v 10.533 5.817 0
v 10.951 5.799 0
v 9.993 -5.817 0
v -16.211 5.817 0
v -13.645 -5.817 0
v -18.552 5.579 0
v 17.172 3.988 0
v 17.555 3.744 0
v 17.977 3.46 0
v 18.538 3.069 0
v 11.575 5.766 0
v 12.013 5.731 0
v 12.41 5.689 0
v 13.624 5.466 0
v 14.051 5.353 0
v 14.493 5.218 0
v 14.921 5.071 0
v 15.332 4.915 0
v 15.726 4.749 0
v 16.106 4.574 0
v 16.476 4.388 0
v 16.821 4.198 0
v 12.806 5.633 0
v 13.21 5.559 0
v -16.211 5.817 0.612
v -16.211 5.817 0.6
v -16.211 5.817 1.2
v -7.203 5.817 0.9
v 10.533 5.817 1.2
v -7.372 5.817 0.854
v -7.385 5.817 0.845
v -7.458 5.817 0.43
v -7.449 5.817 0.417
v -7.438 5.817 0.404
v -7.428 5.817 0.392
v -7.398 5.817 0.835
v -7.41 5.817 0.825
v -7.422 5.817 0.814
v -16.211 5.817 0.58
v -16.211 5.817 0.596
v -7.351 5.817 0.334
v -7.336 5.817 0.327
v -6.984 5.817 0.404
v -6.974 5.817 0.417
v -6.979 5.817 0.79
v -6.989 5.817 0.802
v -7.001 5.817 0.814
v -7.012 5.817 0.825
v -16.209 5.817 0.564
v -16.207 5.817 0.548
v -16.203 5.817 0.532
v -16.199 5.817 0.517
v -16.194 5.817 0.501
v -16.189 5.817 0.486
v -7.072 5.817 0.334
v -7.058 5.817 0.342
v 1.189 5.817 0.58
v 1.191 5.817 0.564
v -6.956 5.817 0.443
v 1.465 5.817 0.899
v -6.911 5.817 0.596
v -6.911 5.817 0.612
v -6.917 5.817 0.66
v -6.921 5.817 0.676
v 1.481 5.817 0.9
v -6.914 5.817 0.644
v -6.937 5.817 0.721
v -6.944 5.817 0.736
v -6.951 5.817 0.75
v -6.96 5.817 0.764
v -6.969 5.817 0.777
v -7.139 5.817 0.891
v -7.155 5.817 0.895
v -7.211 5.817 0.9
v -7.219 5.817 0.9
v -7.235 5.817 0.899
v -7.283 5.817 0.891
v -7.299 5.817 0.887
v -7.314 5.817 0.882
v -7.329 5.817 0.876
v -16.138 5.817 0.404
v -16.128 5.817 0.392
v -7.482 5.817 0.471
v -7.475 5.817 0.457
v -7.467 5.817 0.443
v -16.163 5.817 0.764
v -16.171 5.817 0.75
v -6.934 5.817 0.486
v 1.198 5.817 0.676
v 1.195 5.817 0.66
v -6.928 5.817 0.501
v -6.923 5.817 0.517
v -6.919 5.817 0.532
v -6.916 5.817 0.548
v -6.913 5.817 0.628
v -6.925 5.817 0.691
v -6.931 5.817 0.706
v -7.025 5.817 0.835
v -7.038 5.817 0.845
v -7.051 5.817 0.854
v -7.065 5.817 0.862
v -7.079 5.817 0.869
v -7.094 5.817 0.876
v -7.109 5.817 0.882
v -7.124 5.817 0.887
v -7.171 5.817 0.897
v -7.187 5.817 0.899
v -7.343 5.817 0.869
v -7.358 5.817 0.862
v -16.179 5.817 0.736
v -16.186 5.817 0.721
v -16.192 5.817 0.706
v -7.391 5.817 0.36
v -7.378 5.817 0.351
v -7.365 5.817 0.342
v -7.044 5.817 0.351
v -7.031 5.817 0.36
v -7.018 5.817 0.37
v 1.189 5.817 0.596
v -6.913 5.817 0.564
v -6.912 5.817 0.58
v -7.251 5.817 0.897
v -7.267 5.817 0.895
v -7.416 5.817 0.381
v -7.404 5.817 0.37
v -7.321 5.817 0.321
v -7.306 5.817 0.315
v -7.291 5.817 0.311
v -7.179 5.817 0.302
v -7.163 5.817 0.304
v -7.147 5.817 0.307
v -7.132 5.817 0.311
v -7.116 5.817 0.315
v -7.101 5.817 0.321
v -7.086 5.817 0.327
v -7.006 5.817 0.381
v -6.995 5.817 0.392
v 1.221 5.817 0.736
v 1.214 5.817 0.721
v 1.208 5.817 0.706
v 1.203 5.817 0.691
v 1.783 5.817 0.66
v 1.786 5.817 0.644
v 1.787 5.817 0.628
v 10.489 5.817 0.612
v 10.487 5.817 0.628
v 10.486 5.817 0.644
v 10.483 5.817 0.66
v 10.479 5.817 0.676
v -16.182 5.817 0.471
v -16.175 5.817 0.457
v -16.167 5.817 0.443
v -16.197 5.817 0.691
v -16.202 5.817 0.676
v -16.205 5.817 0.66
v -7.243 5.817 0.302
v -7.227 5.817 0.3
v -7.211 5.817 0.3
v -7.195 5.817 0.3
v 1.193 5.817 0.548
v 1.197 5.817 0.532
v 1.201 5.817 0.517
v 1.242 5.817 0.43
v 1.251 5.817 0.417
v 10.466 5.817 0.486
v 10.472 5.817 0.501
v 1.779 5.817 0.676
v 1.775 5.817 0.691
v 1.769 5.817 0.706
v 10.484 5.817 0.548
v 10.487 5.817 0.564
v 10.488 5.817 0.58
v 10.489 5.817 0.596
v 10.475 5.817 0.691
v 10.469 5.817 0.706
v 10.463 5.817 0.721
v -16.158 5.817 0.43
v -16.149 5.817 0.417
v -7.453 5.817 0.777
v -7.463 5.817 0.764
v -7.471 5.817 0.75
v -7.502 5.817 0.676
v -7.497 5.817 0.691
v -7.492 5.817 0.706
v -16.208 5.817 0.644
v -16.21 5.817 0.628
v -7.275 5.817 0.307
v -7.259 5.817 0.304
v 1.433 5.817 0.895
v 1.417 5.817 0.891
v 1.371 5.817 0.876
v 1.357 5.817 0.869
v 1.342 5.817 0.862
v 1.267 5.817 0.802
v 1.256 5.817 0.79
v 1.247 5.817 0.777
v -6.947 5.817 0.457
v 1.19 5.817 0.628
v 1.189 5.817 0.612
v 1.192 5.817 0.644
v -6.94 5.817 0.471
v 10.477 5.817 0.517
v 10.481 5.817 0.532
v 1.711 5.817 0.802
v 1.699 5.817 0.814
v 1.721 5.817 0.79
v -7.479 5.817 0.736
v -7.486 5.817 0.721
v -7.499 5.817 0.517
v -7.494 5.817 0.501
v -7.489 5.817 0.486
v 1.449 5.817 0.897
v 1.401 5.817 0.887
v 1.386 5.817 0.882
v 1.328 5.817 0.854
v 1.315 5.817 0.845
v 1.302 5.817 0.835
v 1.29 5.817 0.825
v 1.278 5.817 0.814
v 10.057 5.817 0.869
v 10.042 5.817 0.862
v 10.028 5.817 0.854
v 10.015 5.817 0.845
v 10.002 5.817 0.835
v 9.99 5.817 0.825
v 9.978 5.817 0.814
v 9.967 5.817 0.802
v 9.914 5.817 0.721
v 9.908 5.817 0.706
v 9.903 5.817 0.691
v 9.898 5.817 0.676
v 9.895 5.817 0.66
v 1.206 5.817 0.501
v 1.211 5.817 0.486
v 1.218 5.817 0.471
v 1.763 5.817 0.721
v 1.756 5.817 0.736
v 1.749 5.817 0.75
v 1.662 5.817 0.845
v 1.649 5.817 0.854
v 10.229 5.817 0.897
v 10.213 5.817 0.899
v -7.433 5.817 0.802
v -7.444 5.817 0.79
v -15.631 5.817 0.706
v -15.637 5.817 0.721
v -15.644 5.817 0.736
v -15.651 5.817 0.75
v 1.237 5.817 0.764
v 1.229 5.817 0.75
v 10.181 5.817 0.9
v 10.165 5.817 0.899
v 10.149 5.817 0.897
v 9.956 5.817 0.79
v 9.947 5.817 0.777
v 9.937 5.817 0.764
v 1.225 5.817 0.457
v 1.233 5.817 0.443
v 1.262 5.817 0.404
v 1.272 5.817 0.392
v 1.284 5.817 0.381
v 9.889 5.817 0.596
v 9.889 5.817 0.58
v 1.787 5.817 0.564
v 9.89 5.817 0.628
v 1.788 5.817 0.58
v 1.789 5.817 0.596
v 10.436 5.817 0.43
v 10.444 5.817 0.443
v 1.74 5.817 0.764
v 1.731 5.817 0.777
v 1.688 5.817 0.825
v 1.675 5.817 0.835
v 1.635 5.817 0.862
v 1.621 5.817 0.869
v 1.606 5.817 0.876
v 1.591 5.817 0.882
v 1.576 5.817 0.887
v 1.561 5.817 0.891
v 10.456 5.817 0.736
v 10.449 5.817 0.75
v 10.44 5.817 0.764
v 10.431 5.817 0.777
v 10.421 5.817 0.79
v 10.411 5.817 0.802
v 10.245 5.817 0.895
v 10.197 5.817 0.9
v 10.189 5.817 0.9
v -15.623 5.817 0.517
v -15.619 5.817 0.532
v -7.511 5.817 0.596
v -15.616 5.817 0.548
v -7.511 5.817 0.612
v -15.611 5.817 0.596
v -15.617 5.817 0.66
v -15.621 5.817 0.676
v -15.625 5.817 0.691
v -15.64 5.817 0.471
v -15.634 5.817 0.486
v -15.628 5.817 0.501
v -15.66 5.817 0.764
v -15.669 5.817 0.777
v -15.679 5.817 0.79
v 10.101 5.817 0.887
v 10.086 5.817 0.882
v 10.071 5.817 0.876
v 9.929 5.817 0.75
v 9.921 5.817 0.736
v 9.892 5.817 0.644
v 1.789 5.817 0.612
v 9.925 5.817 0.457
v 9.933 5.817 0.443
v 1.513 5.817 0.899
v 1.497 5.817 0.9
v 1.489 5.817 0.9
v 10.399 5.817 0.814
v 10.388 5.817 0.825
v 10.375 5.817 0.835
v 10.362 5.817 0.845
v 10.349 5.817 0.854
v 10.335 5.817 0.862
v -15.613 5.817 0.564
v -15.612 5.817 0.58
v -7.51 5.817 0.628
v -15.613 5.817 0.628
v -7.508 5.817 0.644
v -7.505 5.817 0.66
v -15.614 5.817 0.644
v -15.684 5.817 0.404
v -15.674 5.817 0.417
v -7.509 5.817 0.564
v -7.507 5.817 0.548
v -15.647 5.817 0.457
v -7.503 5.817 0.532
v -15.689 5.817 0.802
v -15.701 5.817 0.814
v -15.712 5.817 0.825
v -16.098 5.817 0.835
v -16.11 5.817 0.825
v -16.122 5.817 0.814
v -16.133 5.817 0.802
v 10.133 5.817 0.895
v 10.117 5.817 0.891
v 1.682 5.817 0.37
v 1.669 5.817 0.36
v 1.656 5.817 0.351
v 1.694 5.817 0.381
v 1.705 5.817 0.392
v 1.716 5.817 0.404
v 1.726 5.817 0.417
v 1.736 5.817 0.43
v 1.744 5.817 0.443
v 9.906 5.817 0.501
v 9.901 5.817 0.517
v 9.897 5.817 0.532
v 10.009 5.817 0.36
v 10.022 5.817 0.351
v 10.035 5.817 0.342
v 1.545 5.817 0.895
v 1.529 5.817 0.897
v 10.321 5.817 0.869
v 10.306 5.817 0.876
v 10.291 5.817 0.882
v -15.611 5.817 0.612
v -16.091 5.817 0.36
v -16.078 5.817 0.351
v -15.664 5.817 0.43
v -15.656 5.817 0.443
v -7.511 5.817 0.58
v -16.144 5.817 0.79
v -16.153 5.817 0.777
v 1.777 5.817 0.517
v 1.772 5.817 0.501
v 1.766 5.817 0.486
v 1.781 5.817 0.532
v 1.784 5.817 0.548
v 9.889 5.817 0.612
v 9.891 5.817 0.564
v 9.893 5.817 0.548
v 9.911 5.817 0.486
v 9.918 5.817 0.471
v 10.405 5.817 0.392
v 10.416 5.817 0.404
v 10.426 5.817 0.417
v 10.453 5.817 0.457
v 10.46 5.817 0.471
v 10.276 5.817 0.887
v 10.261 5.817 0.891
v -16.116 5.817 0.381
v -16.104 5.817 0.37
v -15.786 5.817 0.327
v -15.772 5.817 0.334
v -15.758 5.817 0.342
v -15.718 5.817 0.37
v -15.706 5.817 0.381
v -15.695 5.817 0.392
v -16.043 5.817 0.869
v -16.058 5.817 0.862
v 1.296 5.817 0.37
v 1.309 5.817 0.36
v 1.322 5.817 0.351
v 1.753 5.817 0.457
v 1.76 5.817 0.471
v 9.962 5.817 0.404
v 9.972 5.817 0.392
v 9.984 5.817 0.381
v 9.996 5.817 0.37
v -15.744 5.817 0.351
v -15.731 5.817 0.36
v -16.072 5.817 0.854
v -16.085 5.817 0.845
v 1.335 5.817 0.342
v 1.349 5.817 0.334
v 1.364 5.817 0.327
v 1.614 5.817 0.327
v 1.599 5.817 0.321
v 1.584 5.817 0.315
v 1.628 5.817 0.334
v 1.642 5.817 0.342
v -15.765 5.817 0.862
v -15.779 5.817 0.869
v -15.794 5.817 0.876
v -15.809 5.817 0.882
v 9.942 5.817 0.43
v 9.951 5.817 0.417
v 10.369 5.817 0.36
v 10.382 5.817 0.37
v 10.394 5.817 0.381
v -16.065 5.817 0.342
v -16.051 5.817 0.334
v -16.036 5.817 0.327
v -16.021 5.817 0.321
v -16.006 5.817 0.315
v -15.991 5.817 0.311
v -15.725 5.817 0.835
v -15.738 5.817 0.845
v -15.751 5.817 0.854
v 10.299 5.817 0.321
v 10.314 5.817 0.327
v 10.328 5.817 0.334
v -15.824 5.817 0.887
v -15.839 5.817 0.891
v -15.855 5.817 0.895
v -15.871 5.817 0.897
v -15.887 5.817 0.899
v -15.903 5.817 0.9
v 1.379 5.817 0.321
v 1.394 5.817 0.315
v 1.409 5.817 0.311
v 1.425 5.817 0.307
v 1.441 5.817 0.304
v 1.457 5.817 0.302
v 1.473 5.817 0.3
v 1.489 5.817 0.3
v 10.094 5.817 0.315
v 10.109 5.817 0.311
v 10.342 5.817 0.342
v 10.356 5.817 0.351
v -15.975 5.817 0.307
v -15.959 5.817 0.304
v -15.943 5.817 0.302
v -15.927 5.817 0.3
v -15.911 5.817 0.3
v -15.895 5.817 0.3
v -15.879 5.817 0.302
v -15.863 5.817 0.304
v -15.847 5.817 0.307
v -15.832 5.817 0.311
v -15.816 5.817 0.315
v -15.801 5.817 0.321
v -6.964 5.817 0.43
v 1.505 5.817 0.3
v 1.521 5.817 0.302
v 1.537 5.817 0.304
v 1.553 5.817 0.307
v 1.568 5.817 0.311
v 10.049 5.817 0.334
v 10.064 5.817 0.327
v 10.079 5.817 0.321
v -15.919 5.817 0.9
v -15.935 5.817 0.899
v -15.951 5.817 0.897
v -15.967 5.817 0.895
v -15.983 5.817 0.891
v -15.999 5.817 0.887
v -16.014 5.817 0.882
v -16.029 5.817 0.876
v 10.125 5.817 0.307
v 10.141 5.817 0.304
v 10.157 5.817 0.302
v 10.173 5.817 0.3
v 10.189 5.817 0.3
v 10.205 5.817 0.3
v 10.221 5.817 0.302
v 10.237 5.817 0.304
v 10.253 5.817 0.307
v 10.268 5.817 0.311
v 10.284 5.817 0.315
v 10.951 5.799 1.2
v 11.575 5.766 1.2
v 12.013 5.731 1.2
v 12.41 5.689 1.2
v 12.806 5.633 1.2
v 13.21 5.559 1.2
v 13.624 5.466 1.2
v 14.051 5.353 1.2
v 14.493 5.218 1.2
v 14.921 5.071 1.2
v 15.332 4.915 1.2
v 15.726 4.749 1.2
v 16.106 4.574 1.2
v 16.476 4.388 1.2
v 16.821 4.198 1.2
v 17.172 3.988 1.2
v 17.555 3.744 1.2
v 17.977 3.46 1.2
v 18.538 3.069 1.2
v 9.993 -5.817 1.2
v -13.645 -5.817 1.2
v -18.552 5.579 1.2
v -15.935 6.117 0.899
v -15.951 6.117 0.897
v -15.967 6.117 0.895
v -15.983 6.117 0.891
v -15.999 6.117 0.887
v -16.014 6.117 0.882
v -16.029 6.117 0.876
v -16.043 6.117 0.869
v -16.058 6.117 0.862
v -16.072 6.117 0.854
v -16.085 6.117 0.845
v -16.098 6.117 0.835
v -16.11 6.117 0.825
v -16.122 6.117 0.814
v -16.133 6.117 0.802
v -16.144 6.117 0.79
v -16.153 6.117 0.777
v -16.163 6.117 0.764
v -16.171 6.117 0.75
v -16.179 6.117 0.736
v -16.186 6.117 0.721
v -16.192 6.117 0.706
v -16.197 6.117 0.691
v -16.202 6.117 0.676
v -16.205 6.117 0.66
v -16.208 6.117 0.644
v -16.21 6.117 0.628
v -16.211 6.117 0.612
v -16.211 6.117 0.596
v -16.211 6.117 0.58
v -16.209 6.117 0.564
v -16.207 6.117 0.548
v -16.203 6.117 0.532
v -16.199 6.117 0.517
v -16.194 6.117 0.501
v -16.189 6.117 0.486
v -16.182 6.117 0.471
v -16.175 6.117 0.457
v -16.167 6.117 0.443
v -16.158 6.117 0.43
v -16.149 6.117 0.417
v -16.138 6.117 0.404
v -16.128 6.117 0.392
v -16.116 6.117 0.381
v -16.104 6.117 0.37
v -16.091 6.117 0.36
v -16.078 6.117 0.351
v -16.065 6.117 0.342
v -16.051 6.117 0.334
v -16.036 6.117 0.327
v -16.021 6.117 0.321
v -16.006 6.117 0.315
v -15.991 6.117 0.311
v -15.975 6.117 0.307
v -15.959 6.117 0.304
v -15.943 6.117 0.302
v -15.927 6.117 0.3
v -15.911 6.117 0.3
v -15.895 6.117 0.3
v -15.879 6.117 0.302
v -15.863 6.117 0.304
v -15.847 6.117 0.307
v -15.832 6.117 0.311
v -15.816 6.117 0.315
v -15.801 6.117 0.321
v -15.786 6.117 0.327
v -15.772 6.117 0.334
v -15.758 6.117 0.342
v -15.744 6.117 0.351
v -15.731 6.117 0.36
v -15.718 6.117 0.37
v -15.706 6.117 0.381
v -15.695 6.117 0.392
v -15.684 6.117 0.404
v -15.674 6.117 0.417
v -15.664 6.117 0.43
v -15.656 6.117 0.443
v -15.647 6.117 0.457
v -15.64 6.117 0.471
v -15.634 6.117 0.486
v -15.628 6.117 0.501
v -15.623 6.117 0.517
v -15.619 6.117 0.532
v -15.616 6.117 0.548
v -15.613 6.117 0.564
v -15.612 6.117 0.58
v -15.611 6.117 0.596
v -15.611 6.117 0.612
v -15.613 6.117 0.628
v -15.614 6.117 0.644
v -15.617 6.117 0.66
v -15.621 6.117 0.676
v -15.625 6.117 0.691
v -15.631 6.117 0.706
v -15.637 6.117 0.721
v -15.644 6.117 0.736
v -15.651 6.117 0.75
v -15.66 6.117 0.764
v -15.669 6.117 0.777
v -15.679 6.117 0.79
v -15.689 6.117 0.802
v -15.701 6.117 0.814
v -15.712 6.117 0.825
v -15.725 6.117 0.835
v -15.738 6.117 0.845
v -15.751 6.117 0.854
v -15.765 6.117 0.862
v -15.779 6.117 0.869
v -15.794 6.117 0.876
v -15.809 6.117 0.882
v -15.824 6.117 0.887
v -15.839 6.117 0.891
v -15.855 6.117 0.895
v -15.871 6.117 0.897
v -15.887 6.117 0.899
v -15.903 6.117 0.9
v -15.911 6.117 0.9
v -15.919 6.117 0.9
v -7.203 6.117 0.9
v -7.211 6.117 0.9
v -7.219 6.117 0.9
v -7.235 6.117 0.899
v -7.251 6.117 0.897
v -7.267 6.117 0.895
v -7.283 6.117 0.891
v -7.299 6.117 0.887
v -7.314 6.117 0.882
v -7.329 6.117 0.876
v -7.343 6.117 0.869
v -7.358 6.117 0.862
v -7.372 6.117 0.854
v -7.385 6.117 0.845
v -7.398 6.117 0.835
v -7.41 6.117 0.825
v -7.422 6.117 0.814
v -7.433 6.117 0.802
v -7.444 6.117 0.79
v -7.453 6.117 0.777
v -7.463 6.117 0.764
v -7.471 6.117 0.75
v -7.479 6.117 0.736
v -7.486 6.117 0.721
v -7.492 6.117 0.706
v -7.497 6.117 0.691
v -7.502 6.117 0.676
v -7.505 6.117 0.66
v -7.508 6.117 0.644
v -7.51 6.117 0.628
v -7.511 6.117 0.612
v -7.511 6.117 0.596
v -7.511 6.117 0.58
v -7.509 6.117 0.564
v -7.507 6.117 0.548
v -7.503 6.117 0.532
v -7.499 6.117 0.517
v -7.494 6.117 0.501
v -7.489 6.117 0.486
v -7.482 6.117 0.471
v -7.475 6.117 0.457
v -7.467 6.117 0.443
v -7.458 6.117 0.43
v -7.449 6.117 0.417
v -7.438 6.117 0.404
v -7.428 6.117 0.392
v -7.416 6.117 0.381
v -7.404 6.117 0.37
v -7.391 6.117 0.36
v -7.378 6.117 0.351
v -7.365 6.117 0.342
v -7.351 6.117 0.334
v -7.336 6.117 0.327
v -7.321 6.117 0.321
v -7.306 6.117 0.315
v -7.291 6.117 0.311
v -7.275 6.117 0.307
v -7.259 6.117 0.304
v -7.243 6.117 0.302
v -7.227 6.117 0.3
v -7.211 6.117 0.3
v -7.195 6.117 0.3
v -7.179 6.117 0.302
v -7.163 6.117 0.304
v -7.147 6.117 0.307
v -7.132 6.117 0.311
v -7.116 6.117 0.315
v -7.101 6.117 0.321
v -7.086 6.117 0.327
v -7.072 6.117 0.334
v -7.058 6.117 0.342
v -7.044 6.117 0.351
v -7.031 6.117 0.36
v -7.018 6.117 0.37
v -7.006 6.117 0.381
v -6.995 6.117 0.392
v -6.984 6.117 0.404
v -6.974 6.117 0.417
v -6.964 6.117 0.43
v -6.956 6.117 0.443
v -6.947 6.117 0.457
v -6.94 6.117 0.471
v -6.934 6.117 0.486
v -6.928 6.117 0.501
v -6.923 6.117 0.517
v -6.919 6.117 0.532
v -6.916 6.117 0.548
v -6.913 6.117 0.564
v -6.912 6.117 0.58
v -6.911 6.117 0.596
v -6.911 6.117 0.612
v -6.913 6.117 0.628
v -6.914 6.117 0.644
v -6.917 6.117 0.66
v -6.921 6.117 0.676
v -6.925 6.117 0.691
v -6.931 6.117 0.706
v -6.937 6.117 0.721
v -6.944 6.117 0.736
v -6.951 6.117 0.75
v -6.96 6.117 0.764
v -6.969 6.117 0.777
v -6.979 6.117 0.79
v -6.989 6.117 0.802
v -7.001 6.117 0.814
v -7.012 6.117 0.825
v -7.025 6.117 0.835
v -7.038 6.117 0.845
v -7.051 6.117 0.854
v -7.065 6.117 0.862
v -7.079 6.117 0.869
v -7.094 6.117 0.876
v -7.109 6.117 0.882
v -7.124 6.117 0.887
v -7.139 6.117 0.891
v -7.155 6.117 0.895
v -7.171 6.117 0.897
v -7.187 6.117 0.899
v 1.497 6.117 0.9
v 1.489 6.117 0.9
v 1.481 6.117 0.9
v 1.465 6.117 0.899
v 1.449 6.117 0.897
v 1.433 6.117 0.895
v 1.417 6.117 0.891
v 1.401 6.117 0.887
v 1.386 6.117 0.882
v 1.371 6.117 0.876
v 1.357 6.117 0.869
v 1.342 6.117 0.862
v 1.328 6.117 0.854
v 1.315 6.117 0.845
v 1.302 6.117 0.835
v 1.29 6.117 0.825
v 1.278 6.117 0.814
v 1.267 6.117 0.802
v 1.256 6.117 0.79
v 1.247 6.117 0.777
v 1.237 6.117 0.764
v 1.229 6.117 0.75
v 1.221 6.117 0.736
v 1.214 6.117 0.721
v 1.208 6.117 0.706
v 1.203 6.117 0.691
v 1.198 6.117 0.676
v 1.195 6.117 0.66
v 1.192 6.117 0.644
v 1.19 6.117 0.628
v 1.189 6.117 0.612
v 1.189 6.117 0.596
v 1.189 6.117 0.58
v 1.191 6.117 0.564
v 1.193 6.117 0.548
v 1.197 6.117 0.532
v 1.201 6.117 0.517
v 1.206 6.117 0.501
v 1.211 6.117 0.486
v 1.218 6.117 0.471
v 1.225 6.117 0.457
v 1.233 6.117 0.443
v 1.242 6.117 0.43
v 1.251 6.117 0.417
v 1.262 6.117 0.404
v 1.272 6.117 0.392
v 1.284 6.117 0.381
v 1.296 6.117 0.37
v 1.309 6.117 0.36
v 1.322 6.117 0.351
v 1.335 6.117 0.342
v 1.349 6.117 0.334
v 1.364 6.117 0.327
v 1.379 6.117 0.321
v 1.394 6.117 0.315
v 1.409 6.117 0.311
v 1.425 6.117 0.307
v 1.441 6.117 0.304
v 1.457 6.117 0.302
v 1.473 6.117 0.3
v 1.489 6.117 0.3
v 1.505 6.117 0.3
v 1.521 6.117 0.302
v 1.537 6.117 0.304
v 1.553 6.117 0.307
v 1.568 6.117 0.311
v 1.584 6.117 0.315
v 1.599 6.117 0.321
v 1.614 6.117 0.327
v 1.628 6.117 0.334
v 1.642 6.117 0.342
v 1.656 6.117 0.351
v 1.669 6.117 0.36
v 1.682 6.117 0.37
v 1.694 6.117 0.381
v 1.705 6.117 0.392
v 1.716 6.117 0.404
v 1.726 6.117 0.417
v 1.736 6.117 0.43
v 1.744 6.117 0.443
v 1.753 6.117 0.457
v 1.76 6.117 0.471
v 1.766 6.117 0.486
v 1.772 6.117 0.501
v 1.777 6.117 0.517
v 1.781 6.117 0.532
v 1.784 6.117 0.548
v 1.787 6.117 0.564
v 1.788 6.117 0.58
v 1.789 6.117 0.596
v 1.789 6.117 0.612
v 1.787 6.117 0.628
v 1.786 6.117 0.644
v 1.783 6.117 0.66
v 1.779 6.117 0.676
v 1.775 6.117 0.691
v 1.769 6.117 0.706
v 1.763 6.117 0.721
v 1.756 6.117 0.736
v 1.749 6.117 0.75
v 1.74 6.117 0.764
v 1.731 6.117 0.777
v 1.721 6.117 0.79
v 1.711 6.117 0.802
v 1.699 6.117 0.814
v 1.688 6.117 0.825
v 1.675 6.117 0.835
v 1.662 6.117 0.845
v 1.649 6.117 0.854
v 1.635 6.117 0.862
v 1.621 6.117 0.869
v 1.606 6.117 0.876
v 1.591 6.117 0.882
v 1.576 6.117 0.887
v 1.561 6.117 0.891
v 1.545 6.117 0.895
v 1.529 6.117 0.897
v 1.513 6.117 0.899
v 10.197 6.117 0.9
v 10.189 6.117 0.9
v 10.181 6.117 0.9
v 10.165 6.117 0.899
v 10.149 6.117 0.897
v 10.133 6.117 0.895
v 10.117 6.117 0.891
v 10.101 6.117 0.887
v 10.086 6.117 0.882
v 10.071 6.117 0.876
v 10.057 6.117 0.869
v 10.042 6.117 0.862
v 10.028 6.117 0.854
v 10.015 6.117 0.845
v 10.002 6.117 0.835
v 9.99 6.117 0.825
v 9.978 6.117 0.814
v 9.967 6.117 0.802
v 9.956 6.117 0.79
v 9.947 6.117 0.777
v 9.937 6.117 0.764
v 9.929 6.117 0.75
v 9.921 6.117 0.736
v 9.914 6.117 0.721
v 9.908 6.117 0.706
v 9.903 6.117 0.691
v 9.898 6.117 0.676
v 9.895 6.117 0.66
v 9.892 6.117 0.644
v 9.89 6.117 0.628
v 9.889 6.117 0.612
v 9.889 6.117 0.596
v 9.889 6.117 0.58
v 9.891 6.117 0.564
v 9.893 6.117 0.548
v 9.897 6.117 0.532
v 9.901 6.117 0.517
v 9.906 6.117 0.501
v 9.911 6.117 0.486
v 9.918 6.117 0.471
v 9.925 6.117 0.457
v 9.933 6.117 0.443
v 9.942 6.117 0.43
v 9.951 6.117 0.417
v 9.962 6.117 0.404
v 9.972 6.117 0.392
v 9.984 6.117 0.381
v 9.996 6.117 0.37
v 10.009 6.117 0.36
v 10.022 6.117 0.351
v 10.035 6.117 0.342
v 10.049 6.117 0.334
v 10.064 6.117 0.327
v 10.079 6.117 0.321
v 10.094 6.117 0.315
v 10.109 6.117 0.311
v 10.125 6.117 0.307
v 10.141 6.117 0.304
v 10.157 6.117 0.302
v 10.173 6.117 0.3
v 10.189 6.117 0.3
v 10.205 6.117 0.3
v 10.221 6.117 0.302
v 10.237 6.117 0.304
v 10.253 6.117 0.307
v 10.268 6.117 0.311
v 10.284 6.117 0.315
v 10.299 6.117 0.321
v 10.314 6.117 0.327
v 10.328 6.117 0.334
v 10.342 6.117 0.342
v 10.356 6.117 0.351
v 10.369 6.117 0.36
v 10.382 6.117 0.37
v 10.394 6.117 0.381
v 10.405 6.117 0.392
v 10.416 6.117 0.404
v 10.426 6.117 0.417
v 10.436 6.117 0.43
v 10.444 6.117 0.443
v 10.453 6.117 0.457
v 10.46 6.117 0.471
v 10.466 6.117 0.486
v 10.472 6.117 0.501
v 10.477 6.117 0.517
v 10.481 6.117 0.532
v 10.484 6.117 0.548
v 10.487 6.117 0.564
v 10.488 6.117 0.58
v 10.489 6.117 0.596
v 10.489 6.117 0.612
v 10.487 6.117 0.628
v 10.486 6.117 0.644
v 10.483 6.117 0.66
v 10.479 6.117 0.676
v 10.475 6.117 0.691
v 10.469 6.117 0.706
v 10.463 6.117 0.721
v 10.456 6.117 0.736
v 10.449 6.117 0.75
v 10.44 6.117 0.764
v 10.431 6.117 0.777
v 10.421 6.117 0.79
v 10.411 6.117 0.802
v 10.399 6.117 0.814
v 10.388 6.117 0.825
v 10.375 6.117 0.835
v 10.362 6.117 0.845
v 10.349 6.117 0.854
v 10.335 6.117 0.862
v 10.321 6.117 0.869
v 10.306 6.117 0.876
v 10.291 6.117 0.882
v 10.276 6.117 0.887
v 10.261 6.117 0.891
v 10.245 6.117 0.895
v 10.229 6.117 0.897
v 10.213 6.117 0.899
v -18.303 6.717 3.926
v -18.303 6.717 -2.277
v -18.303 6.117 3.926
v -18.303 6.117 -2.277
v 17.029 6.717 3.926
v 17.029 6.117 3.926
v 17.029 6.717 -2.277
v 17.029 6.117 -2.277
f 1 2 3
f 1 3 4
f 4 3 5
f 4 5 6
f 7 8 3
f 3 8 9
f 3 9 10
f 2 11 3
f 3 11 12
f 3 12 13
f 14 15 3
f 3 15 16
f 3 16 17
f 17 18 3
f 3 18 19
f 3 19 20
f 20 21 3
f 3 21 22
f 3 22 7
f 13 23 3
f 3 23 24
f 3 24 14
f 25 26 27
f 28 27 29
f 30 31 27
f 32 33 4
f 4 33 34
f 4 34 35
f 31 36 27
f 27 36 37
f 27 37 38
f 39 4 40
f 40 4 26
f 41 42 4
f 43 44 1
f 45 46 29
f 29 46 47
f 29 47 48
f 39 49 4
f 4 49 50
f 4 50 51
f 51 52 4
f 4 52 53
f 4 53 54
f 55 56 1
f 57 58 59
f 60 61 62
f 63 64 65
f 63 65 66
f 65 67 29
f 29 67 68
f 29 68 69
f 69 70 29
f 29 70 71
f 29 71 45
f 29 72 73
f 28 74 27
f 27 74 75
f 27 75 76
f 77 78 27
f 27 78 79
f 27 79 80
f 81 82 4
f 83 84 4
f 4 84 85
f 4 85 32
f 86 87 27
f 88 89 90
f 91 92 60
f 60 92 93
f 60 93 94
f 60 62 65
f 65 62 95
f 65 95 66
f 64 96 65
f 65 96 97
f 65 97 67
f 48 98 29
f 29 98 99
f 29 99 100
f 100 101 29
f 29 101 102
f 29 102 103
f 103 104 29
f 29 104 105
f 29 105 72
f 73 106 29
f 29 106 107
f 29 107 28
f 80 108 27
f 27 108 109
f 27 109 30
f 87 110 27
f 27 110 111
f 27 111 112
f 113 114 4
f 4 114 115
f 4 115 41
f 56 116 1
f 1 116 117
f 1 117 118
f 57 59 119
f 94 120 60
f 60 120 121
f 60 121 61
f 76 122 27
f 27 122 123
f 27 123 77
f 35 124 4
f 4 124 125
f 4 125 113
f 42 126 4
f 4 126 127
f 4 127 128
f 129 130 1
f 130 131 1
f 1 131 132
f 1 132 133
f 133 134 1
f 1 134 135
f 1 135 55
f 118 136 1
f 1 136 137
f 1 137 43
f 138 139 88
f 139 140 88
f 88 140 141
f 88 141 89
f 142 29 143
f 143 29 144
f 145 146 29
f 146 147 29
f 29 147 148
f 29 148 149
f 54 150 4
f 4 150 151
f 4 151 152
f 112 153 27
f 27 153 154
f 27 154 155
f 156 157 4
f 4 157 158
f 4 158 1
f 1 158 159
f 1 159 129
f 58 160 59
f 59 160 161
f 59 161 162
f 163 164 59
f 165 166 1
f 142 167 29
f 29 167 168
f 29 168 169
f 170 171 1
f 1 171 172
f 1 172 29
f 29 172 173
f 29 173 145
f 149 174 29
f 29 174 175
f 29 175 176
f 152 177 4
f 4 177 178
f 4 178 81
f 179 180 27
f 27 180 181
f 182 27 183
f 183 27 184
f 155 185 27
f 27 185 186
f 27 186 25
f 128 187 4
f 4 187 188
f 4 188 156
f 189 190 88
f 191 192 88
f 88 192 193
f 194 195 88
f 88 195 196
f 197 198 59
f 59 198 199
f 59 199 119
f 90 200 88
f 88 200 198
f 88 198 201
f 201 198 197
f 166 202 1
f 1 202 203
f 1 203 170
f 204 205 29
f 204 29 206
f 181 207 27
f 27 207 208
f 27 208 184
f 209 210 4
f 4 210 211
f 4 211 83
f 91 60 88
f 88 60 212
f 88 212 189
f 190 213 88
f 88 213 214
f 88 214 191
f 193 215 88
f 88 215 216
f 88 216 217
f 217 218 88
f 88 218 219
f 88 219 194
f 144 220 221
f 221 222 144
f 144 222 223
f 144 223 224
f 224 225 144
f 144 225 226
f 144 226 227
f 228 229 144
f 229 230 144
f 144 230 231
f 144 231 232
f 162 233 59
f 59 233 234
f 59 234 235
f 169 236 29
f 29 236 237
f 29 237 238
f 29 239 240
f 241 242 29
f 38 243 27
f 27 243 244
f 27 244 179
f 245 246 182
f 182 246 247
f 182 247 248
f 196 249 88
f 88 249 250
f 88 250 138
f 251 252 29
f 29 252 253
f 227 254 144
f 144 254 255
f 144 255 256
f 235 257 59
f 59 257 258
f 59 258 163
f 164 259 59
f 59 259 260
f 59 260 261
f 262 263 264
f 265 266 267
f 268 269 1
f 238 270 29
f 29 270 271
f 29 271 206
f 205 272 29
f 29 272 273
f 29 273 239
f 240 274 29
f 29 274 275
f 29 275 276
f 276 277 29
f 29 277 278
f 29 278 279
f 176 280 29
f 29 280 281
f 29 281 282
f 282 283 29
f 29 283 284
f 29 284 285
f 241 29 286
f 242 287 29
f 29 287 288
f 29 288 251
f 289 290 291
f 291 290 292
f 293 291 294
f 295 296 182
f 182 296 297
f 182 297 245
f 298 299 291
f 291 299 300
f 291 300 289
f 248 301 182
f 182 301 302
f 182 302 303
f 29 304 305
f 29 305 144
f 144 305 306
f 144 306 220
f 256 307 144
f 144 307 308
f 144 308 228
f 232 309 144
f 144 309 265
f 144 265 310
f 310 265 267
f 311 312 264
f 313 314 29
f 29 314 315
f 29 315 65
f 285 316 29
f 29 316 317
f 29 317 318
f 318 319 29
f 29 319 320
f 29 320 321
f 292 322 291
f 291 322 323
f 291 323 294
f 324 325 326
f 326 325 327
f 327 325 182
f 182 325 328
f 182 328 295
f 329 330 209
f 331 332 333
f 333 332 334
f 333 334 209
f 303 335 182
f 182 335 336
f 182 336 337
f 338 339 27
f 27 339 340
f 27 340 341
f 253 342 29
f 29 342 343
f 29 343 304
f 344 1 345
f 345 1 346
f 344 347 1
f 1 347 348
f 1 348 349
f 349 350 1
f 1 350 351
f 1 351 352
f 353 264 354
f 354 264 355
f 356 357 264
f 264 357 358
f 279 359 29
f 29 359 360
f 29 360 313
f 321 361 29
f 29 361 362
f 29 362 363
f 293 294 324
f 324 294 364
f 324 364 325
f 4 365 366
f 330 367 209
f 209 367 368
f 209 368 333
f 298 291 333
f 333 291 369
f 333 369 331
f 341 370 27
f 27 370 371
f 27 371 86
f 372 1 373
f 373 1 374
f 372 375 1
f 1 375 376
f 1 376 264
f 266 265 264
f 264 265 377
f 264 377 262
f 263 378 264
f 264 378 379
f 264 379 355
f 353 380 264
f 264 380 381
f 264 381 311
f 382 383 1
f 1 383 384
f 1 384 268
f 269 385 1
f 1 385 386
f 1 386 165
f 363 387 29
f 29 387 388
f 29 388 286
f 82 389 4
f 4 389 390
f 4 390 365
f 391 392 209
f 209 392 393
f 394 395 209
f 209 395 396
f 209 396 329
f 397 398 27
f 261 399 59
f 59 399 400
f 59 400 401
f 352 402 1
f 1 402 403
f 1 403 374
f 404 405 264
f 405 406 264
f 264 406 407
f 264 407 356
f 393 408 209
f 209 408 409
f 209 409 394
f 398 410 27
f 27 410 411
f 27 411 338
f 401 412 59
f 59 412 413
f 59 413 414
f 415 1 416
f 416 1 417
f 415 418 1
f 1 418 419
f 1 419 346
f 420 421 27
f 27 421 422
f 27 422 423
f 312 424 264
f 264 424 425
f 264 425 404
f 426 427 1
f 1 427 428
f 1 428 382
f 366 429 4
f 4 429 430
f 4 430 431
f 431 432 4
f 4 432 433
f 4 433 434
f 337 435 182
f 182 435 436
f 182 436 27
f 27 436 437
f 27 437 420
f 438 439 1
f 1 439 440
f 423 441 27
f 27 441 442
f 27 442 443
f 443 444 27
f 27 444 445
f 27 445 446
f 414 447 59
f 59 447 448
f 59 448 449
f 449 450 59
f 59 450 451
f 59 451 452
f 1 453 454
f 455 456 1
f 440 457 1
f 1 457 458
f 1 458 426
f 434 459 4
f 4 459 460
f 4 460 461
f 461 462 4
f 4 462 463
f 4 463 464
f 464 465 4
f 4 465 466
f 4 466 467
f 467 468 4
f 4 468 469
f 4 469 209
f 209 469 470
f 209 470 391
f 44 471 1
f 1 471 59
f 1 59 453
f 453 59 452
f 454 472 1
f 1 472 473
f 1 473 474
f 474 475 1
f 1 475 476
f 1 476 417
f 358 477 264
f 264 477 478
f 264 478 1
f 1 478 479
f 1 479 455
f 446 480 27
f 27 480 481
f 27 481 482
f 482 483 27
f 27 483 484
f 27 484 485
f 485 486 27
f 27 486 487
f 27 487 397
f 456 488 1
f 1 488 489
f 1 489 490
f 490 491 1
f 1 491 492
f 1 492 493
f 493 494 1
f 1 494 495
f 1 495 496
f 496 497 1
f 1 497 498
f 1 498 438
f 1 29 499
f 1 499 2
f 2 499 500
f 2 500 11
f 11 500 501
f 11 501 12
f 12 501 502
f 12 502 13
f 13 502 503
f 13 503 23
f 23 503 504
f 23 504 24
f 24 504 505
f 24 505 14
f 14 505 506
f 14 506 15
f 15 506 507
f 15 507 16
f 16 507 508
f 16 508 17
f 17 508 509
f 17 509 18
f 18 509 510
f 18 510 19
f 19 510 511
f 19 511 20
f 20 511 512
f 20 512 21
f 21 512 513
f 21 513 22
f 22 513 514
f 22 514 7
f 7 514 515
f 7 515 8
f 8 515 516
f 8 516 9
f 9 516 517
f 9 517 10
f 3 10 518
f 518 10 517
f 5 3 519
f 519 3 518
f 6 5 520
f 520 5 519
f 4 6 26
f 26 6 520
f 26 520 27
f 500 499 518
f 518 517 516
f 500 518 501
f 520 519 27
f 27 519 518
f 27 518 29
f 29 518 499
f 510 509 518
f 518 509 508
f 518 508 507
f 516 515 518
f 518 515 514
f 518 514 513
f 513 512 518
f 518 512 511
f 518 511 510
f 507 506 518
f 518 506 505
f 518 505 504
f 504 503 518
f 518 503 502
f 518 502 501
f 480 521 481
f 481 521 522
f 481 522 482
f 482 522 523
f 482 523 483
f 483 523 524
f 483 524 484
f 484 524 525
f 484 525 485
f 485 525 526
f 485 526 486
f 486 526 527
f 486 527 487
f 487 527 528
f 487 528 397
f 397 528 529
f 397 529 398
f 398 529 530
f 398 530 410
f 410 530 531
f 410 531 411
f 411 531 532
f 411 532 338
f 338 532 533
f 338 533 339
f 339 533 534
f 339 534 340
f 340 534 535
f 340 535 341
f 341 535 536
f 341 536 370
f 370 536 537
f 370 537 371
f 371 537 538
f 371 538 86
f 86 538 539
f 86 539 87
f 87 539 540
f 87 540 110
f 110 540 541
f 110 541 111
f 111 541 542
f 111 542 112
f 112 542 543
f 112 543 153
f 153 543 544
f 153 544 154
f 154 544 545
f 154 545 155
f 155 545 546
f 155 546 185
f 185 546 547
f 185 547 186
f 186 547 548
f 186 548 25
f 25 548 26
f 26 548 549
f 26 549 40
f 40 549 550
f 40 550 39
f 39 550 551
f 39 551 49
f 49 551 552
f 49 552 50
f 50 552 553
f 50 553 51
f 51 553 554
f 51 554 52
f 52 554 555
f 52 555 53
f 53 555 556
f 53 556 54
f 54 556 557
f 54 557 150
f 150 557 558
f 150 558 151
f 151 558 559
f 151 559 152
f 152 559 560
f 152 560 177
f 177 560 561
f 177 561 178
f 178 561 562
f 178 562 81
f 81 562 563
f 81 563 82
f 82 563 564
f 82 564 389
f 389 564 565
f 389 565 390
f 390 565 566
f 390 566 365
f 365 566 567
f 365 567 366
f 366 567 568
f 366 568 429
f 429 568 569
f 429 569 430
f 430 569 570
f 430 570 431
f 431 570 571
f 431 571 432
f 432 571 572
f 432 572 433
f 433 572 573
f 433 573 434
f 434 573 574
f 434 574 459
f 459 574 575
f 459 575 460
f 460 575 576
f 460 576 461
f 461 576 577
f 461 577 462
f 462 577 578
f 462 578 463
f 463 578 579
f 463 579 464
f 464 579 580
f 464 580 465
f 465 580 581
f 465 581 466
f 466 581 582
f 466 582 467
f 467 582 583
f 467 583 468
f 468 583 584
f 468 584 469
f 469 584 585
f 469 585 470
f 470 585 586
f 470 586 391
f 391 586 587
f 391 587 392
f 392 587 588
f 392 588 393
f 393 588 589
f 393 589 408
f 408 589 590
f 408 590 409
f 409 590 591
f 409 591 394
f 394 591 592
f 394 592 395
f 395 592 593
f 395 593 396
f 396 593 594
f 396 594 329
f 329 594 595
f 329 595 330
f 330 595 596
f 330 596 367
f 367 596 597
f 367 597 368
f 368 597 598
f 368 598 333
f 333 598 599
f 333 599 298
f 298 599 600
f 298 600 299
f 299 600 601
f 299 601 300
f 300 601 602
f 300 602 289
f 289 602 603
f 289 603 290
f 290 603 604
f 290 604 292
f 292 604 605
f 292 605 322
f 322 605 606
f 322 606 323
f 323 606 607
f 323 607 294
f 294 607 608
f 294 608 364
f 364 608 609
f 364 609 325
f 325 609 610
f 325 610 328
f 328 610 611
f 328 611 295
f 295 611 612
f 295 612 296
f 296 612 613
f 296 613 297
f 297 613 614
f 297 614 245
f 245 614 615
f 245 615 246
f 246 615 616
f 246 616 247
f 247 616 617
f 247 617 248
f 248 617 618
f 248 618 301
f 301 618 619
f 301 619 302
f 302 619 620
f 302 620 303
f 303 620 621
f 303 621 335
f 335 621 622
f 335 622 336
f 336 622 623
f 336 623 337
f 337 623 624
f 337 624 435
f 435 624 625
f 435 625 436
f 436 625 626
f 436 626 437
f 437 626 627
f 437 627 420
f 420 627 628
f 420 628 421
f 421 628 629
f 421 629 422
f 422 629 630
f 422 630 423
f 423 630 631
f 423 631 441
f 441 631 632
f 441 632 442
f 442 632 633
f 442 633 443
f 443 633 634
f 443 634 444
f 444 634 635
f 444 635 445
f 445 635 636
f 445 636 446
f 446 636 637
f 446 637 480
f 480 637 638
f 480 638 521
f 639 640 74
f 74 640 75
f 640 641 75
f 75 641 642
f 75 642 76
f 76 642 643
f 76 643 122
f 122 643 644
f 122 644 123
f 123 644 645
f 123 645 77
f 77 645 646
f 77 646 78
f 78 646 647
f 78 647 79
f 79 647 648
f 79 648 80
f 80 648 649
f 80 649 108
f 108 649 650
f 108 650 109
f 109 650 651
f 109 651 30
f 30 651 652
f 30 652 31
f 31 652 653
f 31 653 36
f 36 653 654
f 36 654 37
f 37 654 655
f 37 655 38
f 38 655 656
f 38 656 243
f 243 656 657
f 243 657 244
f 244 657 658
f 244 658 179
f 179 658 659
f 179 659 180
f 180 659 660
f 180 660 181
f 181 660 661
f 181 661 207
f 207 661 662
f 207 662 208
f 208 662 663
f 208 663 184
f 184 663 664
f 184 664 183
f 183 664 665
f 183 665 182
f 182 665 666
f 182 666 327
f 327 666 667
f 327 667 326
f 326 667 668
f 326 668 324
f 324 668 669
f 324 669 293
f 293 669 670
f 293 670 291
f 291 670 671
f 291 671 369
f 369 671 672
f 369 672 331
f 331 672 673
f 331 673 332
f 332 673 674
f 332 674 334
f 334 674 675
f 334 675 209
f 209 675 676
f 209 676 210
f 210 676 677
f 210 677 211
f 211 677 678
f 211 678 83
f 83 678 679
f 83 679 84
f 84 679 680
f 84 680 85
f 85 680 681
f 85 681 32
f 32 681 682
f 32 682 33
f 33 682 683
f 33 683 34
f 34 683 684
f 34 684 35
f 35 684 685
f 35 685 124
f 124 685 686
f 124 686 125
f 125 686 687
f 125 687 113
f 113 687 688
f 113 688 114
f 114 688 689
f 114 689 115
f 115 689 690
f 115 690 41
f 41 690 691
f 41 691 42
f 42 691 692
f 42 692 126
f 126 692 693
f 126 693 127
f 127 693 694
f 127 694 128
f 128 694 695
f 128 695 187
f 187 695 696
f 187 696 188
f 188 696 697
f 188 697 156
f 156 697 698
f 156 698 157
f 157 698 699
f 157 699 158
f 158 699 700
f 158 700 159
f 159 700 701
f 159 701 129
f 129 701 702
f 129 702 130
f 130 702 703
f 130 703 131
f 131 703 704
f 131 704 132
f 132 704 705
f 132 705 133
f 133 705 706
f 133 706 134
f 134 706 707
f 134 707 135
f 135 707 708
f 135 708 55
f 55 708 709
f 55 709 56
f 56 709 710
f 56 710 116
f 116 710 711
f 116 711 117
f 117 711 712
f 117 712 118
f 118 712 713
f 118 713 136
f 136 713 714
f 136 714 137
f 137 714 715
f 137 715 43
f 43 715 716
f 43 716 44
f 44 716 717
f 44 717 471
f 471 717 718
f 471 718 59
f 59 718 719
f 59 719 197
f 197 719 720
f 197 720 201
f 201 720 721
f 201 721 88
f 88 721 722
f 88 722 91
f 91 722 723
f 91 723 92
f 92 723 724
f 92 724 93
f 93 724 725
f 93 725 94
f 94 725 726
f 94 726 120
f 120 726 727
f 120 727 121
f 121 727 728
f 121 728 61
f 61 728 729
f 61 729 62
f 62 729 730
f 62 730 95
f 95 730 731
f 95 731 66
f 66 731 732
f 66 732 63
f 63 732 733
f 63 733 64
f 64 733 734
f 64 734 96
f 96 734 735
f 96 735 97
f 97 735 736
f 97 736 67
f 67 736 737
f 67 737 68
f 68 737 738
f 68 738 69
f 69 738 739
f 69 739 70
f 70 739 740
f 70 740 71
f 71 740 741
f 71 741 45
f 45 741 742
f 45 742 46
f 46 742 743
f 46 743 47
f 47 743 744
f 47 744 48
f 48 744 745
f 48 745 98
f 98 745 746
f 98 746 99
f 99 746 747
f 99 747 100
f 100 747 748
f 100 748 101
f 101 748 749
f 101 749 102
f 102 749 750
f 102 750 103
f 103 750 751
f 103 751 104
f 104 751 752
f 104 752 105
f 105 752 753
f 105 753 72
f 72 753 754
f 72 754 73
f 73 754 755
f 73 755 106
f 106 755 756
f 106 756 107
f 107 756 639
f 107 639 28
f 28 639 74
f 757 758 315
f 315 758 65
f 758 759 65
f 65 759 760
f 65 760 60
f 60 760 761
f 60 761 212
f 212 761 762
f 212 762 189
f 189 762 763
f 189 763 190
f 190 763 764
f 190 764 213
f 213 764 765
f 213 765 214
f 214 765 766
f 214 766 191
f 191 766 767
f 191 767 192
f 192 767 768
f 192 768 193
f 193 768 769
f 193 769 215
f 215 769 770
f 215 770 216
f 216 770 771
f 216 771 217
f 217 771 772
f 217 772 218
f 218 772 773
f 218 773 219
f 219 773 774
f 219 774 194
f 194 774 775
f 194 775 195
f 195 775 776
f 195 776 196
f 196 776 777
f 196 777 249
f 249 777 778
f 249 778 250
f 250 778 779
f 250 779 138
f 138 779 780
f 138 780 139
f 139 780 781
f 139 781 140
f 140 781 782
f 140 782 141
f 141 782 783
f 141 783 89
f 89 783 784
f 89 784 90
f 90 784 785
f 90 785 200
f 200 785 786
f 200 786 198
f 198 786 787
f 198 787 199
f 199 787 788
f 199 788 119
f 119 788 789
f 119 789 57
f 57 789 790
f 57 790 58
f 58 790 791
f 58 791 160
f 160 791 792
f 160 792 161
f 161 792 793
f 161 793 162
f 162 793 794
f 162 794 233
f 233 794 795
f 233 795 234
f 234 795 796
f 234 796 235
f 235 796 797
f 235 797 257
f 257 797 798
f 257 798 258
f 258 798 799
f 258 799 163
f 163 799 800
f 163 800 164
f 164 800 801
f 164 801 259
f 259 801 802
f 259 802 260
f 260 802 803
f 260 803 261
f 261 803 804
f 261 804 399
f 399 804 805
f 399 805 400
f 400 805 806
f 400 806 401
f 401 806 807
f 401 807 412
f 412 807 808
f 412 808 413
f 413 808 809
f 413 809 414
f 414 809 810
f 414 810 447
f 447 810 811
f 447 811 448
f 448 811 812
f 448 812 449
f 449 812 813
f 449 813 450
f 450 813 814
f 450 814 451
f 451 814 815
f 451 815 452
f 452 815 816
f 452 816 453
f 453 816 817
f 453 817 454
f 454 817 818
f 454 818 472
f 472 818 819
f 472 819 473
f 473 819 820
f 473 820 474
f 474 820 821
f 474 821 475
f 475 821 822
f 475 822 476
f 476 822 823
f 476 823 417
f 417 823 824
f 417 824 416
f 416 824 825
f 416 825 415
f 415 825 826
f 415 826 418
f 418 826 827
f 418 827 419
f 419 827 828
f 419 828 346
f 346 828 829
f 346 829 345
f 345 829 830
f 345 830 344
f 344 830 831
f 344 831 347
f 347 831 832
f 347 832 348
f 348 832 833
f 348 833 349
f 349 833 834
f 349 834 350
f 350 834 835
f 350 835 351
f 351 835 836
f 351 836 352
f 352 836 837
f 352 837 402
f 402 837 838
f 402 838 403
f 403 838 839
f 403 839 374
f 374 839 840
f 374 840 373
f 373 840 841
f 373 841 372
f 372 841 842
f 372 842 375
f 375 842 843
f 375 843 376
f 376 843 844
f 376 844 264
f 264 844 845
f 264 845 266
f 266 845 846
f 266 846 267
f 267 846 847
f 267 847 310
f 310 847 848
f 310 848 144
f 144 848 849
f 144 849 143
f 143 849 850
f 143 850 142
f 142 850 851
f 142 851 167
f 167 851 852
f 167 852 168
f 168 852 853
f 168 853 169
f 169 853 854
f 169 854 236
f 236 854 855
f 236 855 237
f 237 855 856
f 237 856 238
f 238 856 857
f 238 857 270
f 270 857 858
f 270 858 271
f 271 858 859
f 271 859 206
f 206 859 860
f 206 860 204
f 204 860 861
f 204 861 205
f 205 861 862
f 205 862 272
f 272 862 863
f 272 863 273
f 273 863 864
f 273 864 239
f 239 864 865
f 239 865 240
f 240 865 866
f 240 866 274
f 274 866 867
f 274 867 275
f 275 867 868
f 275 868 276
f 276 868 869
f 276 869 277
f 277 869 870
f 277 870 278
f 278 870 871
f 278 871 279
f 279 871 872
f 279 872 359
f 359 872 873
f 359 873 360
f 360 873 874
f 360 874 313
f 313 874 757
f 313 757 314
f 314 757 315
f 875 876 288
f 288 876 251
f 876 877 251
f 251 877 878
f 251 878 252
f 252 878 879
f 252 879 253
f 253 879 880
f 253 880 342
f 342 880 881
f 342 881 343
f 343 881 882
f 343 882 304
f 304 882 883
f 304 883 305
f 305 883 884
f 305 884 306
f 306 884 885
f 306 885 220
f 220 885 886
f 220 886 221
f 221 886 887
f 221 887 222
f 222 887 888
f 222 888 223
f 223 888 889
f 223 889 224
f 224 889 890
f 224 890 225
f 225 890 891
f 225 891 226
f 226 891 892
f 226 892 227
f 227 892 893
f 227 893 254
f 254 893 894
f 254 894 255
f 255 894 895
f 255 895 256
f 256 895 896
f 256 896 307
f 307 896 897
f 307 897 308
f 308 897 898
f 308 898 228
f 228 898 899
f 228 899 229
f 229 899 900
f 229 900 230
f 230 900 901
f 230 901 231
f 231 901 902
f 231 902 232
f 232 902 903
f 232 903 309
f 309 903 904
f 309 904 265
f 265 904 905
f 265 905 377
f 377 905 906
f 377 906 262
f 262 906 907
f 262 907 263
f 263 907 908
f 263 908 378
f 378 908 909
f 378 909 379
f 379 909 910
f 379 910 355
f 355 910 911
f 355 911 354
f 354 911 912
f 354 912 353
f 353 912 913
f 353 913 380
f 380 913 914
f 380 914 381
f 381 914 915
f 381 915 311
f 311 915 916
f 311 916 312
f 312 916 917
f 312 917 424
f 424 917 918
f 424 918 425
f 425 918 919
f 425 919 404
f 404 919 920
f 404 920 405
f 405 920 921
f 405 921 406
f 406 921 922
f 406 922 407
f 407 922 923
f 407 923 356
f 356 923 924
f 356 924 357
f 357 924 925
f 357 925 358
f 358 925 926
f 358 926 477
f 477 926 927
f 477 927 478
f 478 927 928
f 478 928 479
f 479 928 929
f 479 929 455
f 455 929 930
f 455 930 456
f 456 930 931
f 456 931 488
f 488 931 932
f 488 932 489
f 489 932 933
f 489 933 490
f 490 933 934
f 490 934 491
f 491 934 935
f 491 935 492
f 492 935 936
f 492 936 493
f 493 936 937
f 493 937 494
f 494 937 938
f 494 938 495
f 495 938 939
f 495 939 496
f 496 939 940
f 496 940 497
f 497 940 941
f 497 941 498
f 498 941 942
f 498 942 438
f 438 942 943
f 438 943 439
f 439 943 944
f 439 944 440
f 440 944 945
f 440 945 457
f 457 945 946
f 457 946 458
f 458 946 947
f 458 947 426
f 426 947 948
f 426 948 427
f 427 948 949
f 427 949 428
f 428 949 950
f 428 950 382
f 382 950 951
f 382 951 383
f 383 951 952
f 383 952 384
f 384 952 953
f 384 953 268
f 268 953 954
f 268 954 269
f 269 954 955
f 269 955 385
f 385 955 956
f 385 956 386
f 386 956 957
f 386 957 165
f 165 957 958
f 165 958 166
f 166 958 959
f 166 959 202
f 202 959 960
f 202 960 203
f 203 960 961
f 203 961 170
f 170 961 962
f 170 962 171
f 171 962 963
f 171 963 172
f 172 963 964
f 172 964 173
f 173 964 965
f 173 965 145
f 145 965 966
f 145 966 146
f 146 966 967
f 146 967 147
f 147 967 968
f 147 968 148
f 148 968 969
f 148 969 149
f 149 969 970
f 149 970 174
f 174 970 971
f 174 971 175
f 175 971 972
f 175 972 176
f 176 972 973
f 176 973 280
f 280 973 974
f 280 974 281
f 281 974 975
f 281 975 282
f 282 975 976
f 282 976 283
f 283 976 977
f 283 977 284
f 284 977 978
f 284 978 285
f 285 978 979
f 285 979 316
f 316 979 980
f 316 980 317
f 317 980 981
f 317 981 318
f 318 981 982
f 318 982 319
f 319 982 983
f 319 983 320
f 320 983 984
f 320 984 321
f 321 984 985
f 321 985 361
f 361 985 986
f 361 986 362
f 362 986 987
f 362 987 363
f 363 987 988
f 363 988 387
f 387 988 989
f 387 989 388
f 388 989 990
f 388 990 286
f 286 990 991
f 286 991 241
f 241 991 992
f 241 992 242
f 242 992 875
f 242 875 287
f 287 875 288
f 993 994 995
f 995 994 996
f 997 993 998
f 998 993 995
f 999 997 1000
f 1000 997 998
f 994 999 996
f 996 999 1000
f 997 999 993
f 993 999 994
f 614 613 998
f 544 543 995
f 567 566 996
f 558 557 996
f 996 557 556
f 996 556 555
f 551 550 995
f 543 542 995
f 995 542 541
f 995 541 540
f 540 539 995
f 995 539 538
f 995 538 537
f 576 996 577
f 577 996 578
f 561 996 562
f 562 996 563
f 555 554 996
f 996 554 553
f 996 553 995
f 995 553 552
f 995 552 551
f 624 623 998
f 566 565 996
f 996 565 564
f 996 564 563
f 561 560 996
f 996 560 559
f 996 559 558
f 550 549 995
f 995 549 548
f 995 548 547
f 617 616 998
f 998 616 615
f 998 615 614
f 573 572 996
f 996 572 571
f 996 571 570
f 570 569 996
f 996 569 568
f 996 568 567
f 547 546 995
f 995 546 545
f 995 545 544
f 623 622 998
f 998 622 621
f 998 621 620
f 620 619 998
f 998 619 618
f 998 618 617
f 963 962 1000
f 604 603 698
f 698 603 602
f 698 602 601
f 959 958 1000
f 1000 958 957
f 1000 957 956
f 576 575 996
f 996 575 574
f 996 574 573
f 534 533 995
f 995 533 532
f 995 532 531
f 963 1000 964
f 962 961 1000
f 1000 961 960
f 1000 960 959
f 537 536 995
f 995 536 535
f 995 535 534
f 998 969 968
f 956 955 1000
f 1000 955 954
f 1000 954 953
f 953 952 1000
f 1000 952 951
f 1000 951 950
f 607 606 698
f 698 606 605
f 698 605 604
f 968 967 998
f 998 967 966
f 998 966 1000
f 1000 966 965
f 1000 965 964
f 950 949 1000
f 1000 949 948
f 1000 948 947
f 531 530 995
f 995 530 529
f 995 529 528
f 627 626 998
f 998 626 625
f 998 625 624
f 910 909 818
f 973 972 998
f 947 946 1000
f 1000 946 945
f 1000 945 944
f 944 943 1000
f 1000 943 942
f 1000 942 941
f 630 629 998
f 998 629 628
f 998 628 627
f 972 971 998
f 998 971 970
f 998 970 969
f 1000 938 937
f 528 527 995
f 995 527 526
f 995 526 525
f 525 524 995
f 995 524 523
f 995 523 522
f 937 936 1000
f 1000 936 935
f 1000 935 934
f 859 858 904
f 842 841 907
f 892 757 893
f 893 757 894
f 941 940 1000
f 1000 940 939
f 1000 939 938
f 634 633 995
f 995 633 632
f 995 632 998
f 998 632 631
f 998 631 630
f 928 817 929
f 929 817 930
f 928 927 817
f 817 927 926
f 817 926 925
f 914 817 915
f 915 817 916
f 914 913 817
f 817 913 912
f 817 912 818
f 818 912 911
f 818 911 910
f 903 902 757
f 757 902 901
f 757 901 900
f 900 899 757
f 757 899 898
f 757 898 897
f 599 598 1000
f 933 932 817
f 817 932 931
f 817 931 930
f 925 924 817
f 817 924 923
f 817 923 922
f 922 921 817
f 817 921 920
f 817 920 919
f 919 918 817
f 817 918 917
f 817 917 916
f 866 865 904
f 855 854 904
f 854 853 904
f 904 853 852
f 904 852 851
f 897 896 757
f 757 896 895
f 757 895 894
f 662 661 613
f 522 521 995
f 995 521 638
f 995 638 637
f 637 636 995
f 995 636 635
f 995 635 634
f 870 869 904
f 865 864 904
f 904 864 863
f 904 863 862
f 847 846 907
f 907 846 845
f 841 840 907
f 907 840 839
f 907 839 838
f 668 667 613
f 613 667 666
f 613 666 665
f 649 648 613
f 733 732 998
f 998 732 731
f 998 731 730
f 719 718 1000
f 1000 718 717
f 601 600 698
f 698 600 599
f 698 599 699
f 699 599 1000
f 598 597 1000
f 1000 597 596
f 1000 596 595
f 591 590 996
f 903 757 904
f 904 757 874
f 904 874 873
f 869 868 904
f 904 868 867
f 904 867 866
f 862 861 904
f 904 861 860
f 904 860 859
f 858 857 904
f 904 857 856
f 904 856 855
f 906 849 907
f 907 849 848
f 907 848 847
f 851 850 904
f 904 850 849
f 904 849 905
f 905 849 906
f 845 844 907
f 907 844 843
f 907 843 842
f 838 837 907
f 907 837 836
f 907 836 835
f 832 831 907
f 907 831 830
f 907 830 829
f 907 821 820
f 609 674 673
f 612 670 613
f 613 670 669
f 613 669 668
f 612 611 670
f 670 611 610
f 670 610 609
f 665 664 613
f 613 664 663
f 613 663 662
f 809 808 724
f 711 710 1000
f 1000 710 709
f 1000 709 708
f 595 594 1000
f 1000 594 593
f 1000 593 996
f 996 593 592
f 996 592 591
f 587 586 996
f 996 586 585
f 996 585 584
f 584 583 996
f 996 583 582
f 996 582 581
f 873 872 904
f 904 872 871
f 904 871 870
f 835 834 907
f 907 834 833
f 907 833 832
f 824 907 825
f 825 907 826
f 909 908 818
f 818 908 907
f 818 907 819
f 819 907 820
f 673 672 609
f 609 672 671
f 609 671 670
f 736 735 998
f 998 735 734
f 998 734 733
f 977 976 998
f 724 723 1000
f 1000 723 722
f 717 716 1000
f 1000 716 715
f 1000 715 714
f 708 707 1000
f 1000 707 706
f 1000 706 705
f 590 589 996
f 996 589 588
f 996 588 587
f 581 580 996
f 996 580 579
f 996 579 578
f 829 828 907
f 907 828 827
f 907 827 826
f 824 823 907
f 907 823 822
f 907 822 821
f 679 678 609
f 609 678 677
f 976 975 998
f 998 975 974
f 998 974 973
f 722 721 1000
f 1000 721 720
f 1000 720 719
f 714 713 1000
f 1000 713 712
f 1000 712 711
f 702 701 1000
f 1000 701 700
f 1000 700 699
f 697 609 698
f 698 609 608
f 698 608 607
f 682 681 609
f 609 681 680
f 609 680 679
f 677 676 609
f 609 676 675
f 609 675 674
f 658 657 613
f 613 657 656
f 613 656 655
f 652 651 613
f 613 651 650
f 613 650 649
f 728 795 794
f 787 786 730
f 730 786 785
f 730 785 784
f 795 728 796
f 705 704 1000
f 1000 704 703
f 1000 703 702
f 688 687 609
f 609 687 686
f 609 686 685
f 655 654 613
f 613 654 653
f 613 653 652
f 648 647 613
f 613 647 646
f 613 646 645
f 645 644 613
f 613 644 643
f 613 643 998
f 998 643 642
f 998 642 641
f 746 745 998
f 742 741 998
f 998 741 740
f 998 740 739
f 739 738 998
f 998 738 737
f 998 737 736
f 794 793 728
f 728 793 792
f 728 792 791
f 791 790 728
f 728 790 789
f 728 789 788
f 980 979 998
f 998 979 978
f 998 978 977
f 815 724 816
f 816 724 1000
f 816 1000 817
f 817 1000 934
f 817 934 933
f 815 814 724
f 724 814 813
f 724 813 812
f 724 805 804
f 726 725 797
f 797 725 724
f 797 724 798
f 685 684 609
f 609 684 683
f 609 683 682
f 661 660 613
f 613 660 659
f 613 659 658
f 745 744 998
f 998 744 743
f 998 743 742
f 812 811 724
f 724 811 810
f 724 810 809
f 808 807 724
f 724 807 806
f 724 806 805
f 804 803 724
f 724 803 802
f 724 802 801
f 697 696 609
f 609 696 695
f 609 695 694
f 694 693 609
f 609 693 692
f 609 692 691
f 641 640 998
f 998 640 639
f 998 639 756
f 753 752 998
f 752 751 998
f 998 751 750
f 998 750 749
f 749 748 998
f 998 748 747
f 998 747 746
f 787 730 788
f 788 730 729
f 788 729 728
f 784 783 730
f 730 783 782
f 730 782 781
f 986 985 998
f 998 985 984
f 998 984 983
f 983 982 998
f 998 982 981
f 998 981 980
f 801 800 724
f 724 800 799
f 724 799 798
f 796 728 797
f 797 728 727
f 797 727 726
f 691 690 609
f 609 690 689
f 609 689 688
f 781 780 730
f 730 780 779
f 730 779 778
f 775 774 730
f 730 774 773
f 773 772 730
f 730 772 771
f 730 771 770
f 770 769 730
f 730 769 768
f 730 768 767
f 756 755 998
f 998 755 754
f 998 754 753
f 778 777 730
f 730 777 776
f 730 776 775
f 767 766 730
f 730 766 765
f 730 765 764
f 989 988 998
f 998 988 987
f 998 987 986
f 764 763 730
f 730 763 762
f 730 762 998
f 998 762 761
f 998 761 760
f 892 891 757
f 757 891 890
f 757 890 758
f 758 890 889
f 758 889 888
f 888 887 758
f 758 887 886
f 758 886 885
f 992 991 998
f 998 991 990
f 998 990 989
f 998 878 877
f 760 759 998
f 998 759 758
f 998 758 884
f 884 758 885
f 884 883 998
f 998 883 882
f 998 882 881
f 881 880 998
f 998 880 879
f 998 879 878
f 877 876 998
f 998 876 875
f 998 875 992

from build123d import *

# Parameters (mm, degrees)
EXTRUDE_1_DEPTH     = 1.2
CUT_EXTRUDE_START   = -1.2
CUT_EXTRUDE_1_DEPTH = 1.2
SKETCH_4_R          = 0.3
EXTRUDE_2_DEPTH     = 0.3
SKETCH_5_W          = 35.331764914
SKETCH_5_H          = 6.20328697
EXTRUDE_3_DEPTH     = 0.6


# Read off the part's stored shape, not the designer's step: Вырез-Вытянуть-Тонкостенный1
with BuildPart() as part:
    # Эскиз2 → Бобышка-Вытянуть1 (new body)
    with BuildSketch(Plane.XY):
        with BuildLine():
            Line((-18.718376773, 5.964639596), (-19.098029559, 5.834924894))
            Line((-19.098029559, 5.834924894), (-13.908113328, -6.217213911))
            Line((-13.908113328, -6.217213911), (10.163695982, -6.217213911))
            Line((10.163695982, -6.217213911), (19.098029559, 3.075246962))
            Line((19.098029559, 3.075246962), (18.818052215, 3.361181271))
            add(Edge.make_bspline(
                [(18.818052215, 3.361181271), (18.196335672, 3.797817809), (16.975433986, 4.6552669), (14.927683514, 5.553251977), (12.774537573, 6.124349252), (11.289757629, 6.1860932), (10.541386196, 6.217213911)],
                knots=[0, 0, 0, 0, 0.255164744, 0.501082157, 0.74853118, 1, 1, 1, 1], degree=3))
            Line((10.541386196, 6.217213911), (-16.231491208, 6.217213911))
            Line((-16.231491208, 6.217213911), (-18.718376773, 5.964639596))
        make_face()
    extrude(amount=EXTRUDE_1_DEPTH)

    # Вырез-Вытянуть-Тонкостенный1 outline → Вырез-Вытянуть-Тонкостенный1 (cut)
    with BuildSketch(Plane.XY.offset(1.2).offset(CUT_EXTRUDE_START)):
        with BuildLine():
            Line((19.098029559, 3.075246962), (18.818052215, 3.361181271))
            add(Edge.make_bspline(
                [(18.818052215, 3.361181271), (18.196335672, 3.797817809), (16.975433986, 4.6552669), (14.927683514, 5.553251977), (12.774537573, 6.124349252), (11.289757629, 6.1860932), (10.541386196, 6.217213911)],
                knots=[0, 0, 0, 0, 0.255164744, 0.501082157, 0.74853118, 1, 1, 1, 1], degree=3))
            Line((10.541386196, 6.217213911), (-16.231491208, 6.217213911))
            Line((-16.231491208, 6.217213911), (-18.718376773, 5.964639596))
            Line((-18.718376773, 5.964639596), (-19.098029559, 5.834924894))
            Line((-19.098029559, 5.834924894), (-13.908113328, -6.217213911))
            Line((-13.908113328, -6.217213911), (10.163695982, -6.217213911))
            Line((10.163695982, -6.217213911), (19.098029559, 3.075246962))
        make_face()
        with BuildLine():
            add(Edge.make_bspline(
                [(18.537521774, 3.069405939), (17.947435083, 3.483762917), (17.356771233, 3.89722808), (16.097834512, 4.604238585), (15.441178256, 4.89047439), (14.096932161, 5.359287166), (13.40761017, 5.542927998), (11.977353684, 5.757866724), (11.254825306, 5.787199054), (10.533072773, 5.817213911)],
                knots=[0, 0, 0, 0, 0.25, 0.25, 0.5, 0.5, 0.75, 0.75, 1, 1, 1, 1], degree=3))
            Line((18.537521774, 3.069405939), (9.993388288, -5.817213911))
            Line((9.993388288, -5.817213911), (-13.644851339, -5.817213911))
            Line((-13.644851339, -5.817213911), (-18.552496655, 5.5794291))
            Line((-18.552496655, 5.5794291), (-16.21123082, 5.817213911))
            Line((-16.21123082, 5.817213911), (10.533072773, 5.817213911))
        make_face(mode=Mode.SUBTRACT)
    extrude(amount=CUT_EXTRUDE_1_DEPTH, mode=Mode.SUBTRACT)

    # Эскиз4 → Бобышка-Вытянуть2 (add)
    with BuildSketch(Plane(origin=(0, 5.817213911, 0), x_dir=(1, 0, 0), z_dir=(0, 1, 0))):
        with Locations(Location((-15.91123082, -0.6, 0), (0, 0, 180))):
            Circle(SKETCH_4_R)
        with Locations(Location((-7.21123082, -0.6, 0), (0, 0, 270))):
            Circle(SKETCH_4_R)
        with Locations(Location((1.48876918, -0.6, 0), (0, 0, 270))):
            Circle(SKETCH_4_R)
        with Locations(Location((10.18876918, -0.6, 0), (0, 0, 270))):
            Circle(SKETCH_4_R)
    extrude(amount=EXTRUDE_2_DEPTH)

    # Эскиз5 → Бобышка-Вытянуть3 (add)
    with BuildSketch(Plane(origin=(0, 6.117213911, 0), x_dir=(1, 0, 0), z_dir=(0, 1, 0))):
        with Locations((-0.636806408, -0.824756774)):
            Rectangle(SKETCH_5_W, SKETCH_5_H)
    extrude(amount=EXTRUDE_3_DEPTH)


solid = part.part
